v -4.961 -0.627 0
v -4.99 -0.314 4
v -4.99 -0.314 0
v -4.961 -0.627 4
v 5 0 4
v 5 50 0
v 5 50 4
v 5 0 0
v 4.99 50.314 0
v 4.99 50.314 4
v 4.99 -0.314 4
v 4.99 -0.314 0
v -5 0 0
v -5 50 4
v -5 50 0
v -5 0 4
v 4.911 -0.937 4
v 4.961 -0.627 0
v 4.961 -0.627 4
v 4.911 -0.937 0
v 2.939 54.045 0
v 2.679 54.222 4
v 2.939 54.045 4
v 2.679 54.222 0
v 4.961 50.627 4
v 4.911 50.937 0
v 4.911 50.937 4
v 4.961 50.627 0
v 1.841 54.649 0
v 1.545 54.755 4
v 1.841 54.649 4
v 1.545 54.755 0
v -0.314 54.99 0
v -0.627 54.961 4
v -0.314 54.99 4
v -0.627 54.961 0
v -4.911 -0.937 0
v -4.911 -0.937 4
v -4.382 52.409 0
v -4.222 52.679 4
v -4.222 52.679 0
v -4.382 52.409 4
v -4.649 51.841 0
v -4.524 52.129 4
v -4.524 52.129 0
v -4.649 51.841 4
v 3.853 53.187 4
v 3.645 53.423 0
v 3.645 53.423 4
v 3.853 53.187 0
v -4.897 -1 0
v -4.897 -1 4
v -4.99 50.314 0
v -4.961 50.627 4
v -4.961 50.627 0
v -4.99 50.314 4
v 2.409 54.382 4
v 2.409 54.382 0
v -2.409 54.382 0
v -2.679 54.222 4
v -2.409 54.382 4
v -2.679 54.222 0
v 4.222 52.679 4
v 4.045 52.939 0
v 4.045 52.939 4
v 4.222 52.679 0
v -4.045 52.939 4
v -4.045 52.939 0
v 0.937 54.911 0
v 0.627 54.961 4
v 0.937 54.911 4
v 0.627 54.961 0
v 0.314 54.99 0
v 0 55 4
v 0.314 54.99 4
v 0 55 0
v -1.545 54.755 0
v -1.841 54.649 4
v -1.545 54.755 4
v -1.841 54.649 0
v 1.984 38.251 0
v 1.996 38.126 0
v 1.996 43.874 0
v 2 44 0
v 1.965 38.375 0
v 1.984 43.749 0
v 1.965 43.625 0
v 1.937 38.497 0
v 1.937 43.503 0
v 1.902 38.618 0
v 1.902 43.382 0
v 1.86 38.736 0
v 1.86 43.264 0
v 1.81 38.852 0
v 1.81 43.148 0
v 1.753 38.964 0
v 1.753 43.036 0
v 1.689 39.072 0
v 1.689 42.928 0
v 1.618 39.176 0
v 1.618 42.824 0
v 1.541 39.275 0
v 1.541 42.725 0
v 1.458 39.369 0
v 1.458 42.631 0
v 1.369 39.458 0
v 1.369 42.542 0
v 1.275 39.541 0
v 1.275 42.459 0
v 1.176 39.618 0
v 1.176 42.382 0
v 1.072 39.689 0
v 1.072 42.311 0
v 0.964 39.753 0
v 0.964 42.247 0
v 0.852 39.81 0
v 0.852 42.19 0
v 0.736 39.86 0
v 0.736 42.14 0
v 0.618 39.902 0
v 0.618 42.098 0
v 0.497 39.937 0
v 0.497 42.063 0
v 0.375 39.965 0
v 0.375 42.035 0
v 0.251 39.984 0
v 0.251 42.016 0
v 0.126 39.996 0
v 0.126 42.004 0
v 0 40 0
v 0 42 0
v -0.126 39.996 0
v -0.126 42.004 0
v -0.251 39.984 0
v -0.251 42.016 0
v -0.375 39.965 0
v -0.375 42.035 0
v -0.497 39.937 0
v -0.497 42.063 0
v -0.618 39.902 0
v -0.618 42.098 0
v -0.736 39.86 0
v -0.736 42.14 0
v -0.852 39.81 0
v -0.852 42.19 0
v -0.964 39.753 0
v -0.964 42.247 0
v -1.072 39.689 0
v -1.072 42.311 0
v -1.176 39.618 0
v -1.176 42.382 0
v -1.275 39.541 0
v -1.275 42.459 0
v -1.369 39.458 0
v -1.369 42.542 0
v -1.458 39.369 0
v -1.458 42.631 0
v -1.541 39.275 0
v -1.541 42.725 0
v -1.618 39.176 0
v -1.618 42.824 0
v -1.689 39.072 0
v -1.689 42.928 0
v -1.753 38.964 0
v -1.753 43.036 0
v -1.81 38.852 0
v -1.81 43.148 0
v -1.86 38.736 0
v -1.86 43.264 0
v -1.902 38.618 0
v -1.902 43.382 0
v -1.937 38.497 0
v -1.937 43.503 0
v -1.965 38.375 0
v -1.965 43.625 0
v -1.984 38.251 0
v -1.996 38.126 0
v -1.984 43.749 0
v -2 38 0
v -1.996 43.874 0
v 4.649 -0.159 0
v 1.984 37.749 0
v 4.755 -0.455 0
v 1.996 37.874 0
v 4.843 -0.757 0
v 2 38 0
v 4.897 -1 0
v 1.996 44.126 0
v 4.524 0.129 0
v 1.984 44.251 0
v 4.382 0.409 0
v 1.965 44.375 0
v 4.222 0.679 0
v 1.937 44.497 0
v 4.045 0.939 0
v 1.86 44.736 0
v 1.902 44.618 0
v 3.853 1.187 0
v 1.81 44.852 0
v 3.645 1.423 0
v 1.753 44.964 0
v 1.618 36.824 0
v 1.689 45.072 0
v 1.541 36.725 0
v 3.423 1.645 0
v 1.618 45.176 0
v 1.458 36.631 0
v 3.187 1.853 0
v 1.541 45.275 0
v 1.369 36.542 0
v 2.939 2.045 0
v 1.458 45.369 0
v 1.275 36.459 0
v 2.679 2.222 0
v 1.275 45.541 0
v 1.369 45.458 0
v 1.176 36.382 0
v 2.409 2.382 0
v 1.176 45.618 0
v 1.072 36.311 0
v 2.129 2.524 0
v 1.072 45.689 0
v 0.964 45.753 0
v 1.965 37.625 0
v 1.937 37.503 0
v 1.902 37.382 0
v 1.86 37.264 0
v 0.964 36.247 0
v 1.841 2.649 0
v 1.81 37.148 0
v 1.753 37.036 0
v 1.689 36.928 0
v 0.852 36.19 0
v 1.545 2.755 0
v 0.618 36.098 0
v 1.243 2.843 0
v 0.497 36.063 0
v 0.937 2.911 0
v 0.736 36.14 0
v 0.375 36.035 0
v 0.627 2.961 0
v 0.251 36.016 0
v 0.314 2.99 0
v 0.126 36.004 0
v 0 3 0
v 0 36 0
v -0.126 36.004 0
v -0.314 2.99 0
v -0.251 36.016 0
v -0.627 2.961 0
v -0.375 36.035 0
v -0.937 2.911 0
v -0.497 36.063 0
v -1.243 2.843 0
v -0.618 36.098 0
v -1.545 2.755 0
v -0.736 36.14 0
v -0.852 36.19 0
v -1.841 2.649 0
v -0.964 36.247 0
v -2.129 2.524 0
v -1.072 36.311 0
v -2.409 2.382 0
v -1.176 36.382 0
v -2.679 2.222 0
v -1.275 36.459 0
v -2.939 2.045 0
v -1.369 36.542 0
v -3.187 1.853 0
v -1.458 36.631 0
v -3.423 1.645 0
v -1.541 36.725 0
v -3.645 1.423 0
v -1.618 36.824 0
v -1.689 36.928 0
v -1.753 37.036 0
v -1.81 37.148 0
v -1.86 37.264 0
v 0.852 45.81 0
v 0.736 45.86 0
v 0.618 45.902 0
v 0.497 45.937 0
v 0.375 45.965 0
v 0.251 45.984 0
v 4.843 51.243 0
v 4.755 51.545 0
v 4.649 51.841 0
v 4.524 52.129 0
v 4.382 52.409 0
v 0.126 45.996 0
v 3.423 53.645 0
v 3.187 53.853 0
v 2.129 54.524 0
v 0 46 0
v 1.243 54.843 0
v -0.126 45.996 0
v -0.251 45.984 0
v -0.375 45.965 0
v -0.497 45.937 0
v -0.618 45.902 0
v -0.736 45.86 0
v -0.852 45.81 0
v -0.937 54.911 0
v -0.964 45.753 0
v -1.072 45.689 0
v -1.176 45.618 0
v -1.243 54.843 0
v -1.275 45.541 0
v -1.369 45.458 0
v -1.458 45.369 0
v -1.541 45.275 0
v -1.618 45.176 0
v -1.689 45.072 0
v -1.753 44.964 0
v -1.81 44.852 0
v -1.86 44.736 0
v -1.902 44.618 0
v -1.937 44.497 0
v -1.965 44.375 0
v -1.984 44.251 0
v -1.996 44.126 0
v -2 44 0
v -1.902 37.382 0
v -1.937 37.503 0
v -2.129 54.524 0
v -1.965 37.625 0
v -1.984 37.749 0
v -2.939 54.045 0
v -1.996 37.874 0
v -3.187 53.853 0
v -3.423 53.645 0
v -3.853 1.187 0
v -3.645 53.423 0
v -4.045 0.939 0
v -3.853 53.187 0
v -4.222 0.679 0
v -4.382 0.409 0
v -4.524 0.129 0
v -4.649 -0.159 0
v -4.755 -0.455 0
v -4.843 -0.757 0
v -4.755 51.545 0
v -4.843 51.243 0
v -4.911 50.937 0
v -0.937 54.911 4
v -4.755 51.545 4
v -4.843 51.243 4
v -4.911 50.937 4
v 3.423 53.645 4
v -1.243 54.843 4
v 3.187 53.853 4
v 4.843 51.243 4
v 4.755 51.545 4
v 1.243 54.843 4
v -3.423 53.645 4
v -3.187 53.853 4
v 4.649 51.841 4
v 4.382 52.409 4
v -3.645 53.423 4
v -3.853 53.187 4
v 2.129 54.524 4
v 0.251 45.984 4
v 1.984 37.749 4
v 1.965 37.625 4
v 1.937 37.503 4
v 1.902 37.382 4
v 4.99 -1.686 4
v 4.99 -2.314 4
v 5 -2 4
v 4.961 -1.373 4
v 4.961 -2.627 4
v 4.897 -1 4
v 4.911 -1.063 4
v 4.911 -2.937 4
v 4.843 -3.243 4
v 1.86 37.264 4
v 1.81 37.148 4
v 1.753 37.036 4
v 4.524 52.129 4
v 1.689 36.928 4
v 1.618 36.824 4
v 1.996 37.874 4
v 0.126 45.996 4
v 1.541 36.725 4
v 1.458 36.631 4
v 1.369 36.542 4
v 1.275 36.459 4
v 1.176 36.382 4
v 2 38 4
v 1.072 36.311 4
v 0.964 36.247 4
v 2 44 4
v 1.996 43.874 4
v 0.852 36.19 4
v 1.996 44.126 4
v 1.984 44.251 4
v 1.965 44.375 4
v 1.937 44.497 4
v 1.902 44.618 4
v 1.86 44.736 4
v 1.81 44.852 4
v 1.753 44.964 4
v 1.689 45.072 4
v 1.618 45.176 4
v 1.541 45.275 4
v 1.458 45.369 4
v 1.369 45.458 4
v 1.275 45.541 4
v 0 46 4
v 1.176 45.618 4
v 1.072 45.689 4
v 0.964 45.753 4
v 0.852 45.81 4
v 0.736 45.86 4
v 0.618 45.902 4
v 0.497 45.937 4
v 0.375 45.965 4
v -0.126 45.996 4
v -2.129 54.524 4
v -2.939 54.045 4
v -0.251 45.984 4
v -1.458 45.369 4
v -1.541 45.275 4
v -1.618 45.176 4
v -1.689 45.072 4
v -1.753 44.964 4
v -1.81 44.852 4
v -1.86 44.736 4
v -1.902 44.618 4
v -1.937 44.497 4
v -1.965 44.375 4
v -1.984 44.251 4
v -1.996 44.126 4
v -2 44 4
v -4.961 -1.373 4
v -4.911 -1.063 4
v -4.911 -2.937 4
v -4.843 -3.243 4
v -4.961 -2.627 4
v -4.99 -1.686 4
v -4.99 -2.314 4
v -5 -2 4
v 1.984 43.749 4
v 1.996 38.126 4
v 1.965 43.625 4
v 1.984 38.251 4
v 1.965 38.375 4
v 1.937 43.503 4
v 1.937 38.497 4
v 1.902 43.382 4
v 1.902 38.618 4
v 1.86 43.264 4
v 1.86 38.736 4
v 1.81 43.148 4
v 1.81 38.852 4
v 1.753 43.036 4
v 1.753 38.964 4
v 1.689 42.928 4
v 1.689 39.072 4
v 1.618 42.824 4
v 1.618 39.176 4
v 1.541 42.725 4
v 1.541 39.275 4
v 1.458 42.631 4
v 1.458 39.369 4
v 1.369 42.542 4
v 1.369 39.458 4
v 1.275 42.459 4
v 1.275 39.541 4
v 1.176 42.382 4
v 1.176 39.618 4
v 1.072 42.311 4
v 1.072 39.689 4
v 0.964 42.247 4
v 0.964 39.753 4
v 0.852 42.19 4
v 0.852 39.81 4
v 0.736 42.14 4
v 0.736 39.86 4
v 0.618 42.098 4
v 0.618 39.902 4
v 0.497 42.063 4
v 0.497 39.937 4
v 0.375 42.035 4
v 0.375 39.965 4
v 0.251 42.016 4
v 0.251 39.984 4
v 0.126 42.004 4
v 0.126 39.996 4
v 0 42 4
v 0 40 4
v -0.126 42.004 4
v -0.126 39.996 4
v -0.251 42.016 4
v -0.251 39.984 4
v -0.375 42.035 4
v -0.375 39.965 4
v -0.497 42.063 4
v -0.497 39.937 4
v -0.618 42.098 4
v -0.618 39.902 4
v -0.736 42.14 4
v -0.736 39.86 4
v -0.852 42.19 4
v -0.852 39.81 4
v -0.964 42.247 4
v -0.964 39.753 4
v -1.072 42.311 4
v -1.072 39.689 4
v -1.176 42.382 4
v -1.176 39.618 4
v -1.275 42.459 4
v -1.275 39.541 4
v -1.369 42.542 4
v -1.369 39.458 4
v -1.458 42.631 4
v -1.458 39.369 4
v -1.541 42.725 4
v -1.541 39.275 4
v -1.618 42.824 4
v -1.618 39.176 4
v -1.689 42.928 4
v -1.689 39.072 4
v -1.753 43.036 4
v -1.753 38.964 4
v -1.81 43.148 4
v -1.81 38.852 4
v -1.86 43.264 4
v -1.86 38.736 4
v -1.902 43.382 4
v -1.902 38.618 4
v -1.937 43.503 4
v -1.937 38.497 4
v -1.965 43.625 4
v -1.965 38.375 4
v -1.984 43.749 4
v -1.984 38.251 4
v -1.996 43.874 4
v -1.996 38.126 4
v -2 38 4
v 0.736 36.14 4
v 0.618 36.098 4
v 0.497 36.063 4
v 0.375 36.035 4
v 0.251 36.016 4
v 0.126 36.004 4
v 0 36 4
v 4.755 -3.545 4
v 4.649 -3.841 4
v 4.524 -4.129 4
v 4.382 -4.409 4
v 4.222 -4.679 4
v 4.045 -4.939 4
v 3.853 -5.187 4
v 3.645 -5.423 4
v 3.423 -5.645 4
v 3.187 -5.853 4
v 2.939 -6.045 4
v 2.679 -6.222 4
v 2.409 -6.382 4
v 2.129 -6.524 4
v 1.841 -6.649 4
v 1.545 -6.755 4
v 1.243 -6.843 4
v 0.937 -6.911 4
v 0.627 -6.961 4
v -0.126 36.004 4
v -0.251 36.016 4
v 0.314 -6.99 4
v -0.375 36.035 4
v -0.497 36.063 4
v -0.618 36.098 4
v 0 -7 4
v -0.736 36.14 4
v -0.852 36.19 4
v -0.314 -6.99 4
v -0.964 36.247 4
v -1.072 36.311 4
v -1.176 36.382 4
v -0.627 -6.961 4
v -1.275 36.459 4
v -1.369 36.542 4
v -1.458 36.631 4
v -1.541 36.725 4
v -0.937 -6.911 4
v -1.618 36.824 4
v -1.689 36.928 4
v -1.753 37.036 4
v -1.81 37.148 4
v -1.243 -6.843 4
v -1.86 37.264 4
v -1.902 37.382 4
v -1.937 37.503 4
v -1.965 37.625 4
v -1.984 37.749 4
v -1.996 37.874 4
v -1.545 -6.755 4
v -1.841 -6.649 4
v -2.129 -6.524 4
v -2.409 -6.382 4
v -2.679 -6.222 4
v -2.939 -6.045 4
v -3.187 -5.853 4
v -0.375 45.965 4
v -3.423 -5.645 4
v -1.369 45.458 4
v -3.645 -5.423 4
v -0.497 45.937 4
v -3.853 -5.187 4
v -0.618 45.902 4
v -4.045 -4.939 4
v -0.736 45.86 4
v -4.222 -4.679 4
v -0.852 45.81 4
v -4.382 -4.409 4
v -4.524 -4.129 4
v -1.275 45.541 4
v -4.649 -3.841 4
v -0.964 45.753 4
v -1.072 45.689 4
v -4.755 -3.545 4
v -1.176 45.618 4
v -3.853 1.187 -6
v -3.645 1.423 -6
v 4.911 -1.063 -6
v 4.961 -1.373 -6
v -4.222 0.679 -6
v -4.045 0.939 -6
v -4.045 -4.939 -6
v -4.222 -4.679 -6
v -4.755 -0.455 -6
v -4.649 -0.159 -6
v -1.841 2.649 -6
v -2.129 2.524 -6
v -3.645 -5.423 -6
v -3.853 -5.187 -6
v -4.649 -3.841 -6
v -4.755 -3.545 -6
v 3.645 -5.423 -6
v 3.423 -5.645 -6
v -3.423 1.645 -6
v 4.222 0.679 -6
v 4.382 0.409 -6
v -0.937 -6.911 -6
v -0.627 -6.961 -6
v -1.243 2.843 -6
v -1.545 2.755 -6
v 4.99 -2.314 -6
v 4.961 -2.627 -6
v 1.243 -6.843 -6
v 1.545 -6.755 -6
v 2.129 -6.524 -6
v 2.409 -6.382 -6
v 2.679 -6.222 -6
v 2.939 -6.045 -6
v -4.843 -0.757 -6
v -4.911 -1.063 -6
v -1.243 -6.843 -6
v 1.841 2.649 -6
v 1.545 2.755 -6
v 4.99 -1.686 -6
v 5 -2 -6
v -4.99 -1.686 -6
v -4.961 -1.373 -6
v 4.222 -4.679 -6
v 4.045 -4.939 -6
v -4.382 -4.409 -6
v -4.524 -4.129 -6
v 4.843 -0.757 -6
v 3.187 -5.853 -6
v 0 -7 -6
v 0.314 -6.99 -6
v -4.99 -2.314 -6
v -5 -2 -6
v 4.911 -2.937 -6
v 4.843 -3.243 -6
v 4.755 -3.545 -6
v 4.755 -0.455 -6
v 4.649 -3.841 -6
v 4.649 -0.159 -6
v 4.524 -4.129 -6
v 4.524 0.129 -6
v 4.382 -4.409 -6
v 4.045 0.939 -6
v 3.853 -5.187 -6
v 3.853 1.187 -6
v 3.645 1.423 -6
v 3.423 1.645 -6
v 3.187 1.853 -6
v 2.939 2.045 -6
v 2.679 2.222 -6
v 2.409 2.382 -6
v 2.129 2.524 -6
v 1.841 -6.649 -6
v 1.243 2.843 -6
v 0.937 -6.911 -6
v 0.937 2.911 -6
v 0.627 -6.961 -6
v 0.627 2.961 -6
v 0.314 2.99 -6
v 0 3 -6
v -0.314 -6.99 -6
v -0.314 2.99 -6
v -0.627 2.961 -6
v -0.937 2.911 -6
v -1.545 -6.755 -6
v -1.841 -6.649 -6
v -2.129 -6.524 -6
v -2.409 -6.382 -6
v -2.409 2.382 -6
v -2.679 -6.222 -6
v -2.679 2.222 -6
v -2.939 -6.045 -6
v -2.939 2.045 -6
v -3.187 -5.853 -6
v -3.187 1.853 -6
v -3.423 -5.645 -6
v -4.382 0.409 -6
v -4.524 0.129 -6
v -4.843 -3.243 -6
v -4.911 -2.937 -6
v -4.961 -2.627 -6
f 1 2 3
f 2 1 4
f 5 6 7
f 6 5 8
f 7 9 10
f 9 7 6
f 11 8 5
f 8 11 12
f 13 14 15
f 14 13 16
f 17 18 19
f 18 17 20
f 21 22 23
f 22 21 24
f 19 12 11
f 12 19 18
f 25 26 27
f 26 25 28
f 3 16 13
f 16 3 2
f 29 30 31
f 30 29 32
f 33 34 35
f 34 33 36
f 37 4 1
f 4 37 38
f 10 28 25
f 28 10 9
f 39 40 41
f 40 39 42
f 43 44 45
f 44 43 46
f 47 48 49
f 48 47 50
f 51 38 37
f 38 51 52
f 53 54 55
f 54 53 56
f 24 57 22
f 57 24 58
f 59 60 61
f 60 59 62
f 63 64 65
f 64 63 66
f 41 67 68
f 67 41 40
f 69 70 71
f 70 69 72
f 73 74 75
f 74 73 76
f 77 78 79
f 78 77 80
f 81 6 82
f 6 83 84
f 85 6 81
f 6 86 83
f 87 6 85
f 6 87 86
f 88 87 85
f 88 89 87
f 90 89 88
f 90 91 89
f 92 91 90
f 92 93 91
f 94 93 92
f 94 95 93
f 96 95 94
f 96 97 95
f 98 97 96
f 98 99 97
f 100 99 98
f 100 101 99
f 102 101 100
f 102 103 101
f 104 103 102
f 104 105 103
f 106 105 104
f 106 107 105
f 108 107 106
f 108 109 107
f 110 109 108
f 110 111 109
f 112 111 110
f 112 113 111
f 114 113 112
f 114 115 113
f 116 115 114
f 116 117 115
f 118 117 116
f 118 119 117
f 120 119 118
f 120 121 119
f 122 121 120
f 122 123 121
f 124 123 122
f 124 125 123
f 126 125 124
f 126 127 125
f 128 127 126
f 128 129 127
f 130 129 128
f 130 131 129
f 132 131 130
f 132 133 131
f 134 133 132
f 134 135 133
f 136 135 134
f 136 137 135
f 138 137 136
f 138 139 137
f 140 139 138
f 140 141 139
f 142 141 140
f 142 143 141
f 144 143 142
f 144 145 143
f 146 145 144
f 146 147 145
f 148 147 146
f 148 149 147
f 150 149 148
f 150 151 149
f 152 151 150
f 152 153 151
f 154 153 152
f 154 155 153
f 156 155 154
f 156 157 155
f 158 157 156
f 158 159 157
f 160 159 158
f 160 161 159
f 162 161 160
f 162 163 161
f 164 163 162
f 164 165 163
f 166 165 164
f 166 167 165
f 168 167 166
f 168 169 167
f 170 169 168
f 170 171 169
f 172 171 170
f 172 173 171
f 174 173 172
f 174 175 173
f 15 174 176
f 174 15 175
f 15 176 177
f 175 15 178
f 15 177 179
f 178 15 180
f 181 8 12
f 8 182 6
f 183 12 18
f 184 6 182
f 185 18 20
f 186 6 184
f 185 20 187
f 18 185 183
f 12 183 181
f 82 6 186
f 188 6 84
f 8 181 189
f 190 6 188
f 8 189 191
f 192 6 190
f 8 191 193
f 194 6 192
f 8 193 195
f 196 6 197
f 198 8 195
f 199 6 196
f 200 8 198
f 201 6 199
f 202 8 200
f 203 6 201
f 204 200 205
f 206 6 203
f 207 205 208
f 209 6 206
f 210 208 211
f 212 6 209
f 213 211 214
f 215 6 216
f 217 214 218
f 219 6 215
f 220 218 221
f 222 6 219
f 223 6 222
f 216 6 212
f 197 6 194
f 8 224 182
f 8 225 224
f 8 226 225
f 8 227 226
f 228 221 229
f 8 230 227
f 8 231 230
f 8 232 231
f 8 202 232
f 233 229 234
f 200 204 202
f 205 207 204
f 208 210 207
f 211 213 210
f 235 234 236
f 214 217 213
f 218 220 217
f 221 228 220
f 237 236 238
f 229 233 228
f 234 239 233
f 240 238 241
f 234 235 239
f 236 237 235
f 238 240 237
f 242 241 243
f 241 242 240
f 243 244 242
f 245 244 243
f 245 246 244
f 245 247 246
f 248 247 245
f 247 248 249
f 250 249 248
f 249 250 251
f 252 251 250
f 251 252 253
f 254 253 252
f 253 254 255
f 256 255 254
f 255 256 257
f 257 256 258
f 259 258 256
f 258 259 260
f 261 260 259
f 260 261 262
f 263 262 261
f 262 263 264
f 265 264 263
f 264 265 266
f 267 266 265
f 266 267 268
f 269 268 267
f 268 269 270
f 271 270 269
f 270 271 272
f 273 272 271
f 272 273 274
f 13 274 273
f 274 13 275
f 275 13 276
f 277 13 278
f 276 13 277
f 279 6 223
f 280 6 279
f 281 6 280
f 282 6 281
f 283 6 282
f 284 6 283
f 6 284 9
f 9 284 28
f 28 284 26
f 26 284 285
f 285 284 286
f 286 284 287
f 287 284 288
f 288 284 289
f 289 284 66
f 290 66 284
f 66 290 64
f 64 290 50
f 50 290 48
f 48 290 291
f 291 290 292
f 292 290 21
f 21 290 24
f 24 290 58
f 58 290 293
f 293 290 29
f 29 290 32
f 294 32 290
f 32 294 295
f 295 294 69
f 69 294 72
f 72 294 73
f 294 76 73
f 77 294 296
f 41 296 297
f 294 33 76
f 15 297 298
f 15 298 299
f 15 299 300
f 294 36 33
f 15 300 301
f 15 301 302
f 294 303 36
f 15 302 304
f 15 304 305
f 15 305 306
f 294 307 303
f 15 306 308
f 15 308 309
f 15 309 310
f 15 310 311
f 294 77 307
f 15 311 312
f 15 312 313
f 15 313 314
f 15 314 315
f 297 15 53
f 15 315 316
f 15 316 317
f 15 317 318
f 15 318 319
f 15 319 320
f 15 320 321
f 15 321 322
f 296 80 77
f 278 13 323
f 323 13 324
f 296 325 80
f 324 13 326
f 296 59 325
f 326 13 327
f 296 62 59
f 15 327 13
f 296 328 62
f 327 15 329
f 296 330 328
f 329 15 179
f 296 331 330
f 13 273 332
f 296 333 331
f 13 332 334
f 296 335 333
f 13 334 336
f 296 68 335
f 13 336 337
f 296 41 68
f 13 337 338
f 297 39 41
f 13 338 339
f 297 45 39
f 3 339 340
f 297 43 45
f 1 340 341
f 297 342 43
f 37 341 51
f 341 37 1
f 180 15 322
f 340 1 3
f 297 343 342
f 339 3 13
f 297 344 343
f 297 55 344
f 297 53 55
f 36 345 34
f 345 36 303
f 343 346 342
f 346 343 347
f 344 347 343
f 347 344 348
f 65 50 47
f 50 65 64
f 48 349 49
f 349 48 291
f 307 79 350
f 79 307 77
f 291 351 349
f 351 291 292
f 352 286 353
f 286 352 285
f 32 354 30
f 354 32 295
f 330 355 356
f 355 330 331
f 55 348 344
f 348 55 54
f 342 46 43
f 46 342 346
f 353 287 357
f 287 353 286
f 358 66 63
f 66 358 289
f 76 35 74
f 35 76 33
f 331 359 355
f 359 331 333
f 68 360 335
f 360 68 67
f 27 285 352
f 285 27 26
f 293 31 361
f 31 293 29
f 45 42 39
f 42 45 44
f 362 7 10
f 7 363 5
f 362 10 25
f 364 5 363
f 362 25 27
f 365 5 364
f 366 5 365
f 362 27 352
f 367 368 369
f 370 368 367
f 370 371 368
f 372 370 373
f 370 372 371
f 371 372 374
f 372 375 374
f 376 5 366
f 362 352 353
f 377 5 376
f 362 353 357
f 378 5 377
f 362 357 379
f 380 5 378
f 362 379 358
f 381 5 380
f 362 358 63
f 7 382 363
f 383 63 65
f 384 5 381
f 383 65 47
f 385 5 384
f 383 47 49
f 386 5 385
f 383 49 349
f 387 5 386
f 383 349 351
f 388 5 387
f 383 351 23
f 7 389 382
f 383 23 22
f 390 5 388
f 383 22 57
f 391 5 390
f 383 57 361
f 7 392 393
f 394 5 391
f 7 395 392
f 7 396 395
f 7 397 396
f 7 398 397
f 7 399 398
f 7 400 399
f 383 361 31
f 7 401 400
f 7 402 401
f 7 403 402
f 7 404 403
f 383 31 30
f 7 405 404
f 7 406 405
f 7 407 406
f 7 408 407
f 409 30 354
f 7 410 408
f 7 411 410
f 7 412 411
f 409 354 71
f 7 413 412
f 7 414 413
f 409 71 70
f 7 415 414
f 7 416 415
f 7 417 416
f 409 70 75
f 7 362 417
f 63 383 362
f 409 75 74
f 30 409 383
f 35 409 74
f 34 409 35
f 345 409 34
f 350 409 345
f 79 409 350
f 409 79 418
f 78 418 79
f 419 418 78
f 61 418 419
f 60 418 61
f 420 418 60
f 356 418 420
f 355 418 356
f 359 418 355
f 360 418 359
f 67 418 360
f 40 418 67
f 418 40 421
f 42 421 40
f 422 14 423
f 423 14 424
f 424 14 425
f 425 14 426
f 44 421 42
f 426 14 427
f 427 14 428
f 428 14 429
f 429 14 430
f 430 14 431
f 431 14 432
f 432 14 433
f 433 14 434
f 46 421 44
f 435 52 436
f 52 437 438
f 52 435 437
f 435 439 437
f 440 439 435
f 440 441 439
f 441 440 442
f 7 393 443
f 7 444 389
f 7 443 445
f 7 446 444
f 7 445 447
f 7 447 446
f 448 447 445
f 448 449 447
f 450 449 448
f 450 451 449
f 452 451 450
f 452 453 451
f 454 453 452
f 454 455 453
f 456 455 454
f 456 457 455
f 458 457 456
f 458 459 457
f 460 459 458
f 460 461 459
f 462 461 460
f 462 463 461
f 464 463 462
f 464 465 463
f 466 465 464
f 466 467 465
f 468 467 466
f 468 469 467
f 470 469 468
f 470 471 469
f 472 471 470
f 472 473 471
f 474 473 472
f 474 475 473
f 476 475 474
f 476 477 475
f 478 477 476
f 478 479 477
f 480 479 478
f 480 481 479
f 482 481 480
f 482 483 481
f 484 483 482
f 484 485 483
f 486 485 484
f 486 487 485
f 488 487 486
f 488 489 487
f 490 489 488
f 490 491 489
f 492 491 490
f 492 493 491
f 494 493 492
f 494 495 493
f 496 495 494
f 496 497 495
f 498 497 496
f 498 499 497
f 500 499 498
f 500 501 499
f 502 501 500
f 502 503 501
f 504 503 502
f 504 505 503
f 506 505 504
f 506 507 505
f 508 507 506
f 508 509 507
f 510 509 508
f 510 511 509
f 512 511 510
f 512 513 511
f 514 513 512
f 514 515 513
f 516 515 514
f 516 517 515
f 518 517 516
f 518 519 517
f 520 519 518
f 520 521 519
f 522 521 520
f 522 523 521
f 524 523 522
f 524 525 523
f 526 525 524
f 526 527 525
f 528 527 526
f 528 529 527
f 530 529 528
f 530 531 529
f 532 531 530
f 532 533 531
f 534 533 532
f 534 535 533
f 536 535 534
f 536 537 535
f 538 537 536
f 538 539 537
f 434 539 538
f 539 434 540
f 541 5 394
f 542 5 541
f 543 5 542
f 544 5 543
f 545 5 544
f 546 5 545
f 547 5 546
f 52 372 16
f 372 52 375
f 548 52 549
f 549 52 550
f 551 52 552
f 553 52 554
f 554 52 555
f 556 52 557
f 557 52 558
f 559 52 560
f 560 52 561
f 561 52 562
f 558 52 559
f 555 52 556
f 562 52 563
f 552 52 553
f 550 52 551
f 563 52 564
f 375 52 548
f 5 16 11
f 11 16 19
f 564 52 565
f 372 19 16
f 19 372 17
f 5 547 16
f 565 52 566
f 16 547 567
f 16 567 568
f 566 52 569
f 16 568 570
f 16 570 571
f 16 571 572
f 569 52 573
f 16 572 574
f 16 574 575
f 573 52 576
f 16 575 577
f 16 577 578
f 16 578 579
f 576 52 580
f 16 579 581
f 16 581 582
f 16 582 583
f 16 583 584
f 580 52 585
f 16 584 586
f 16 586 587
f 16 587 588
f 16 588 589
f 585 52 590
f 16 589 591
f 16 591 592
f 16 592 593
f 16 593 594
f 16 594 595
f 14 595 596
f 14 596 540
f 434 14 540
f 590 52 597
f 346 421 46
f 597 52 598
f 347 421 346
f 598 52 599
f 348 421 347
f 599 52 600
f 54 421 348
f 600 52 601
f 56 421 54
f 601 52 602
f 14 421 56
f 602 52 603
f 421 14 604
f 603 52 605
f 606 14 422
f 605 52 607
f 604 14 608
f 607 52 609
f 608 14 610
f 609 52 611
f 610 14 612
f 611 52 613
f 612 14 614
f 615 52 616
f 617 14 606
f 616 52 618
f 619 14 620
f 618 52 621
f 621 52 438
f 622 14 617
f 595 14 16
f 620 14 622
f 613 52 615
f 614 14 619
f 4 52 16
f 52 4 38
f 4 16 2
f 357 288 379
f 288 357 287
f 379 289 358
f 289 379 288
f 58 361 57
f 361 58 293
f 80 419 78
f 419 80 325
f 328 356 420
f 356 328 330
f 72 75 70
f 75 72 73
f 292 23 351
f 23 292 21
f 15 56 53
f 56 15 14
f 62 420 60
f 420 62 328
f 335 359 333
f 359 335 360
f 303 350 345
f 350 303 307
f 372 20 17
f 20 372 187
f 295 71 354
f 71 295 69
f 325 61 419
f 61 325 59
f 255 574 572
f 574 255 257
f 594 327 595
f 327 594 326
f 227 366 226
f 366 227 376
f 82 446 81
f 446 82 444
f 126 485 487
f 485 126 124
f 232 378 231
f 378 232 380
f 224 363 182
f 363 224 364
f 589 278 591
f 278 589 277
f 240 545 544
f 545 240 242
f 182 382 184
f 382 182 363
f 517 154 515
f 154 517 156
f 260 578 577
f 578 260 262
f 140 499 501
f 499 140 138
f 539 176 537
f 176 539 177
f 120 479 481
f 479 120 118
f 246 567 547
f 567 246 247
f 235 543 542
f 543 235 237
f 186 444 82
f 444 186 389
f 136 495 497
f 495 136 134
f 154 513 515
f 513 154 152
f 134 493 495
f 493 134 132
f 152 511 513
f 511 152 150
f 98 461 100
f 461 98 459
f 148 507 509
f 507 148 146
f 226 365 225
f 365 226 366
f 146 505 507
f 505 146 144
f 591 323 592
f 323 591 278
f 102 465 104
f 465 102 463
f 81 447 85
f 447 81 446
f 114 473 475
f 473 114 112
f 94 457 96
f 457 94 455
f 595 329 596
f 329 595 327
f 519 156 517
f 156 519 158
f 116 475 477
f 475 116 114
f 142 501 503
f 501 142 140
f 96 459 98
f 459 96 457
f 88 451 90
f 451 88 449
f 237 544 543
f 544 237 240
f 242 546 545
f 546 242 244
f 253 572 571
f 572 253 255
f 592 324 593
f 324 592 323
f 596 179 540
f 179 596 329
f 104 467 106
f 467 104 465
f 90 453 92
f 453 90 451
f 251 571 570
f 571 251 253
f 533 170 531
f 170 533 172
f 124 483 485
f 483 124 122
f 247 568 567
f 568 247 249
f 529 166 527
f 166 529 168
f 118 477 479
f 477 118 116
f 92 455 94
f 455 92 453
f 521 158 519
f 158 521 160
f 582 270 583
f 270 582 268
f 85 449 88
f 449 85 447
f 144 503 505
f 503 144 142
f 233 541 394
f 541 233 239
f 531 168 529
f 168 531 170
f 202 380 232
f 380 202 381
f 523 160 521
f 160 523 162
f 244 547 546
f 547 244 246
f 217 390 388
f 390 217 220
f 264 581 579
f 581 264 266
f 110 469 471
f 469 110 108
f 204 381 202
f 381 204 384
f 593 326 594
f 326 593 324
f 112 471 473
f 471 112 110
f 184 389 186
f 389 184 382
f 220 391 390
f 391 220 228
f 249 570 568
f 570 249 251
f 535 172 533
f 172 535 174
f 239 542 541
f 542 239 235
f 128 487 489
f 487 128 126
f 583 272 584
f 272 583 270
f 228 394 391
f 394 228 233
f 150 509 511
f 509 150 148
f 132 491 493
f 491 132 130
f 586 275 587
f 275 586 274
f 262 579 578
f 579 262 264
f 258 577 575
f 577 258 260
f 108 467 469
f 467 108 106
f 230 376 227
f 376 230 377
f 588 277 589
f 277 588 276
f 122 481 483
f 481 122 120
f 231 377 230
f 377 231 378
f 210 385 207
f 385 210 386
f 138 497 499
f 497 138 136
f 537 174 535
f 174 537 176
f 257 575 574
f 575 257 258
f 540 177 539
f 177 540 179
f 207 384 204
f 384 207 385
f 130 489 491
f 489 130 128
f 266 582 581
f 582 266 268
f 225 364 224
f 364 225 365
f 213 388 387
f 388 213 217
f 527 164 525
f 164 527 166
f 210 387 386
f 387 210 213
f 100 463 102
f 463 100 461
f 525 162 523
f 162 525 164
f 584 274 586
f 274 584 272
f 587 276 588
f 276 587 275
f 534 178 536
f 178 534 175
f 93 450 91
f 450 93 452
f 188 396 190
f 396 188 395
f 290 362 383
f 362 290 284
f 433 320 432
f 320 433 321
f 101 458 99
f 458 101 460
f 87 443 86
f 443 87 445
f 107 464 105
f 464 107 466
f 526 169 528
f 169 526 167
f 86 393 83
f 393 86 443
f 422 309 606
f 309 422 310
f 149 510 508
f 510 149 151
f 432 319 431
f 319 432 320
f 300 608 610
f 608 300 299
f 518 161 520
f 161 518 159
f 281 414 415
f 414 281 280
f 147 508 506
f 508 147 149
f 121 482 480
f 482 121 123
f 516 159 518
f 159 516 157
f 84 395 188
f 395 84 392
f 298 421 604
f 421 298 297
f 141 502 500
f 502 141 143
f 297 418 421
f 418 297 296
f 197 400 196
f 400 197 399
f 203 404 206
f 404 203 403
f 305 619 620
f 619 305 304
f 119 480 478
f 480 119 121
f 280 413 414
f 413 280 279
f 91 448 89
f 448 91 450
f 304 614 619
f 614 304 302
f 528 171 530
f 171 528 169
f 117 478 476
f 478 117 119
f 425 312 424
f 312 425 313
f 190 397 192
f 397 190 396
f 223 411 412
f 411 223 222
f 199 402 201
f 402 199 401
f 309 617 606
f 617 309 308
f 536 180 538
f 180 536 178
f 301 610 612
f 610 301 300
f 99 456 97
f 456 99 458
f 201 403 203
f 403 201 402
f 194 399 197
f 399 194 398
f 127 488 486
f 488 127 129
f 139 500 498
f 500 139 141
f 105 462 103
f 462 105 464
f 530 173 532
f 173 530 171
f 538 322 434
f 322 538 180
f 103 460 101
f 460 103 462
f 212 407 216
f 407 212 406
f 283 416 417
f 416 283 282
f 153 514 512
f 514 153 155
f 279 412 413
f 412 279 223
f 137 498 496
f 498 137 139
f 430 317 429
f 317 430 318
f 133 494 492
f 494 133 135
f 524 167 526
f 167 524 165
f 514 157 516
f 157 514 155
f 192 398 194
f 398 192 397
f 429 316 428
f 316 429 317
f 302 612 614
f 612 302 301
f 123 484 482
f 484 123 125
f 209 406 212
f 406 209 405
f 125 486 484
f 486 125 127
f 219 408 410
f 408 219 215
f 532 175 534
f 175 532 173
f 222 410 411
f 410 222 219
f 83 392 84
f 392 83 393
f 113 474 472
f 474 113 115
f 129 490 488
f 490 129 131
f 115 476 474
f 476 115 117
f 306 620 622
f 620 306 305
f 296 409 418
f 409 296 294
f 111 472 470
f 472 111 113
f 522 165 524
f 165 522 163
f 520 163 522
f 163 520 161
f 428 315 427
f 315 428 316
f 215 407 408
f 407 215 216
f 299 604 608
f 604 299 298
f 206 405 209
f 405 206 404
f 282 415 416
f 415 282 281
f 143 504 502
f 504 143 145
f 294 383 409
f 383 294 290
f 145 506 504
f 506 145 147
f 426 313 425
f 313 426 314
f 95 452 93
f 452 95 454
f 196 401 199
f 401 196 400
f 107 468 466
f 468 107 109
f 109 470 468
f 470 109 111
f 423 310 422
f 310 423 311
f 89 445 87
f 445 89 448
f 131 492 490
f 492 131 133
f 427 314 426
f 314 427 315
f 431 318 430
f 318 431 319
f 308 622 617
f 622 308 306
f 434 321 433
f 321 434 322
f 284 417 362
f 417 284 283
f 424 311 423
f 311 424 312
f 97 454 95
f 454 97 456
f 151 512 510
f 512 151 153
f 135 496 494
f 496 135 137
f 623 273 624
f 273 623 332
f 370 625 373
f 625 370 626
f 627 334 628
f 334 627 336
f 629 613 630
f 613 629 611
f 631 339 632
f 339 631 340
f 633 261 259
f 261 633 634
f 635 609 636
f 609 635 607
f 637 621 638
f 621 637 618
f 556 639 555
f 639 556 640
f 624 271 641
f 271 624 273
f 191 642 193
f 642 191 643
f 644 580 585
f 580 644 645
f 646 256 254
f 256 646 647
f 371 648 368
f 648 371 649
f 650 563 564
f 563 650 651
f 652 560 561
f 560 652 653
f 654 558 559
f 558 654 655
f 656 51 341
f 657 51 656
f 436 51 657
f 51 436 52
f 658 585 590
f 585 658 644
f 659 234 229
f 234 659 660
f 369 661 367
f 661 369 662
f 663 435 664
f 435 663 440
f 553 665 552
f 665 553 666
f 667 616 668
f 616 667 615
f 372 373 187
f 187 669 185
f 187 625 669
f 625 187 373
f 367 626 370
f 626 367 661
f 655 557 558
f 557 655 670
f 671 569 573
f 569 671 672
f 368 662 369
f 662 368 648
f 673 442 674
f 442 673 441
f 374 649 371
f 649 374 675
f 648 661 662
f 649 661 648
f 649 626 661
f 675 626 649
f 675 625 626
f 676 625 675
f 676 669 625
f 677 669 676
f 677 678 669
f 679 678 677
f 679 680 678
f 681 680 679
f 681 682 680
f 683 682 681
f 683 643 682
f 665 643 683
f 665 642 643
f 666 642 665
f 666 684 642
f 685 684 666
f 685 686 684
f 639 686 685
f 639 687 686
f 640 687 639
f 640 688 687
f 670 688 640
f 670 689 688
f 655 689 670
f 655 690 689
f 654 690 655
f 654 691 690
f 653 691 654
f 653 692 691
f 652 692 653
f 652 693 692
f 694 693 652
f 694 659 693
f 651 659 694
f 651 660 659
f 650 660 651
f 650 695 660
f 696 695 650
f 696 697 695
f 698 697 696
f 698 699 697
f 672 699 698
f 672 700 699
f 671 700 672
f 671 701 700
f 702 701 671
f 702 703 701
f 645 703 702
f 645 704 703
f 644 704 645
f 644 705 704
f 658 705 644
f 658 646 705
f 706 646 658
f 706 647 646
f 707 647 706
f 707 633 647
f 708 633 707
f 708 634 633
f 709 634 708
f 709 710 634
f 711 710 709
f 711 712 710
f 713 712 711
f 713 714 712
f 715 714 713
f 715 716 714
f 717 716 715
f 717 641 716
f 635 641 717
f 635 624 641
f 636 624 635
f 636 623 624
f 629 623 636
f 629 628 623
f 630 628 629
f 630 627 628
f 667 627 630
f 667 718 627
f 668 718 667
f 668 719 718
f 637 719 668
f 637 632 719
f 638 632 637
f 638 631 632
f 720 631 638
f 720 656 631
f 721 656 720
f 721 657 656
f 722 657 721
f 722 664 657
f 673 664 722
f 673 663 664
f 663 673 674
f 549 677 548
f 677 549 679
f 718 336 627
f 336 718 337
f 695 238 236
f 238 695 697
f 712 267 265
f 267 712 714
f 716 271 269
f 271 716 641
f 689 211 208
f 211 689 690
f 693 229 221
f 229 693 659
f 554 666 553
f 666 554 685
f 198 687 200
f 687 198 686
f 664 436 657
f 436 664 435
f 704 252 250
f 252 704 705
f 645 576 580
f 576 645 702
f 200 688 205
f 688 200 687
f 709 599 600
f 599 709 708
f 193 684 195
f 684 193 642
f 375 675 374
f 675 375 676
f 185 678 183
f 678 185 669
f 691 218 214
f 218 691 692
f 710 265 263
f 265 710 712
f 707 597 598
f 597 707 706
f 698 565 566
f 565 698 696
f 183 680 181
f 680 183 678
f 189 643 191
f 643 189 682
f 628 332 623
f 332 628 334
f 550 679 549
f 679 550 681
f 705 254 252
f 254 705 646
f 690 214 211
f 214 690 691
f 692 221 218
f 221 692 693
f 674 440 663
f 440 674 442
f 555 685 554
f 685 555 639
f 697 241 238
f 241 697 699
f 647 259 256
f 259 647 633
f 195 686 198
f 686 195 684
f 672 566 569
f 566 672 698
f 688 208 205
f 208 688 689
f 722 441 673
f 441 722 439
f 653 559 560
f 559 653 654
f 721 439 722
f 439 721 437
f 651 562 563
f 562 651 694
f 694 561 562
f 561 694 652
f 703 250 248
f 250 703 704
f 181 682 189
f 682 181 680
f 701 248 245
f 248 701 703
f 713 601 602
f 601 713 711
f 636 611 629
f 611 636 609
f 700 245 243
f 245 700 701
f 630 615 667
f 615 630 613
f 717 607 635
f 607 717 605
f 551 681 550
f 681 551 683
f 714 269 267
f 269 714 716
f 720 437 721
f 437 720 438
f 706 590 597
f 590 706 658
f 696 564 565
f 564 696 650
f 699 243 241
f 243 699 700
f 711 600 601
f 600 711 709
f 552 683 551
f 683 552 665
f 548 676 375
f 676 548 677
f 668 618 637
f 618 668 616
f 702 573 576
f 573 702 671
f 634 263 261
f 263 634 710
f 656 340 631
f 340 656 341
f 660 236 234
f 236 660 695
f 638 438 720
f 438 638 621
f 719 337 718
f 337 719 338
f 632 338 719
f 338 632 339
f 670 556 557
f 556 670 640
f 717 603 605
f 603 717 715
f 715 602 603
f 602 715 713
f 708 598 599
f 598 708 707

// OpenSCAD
union(){
difference(){
    hull(){
        cylinder(4,d=10,$fn=100);
        translate([0,50,0])cylinder(4,d=10,$fn=100);
    }
    //cube([10,50,4]);
translate([0,38,-1])cylinder(6,d=4,$fn=100);
translate([0,44,-1])cylinder(6,d=4,$fn=100);
}
color("red")translate([0,-2,-6])
cylinder(10,d=10,center=false,$fn=100);//cube([10,8,14],center=false);
}
